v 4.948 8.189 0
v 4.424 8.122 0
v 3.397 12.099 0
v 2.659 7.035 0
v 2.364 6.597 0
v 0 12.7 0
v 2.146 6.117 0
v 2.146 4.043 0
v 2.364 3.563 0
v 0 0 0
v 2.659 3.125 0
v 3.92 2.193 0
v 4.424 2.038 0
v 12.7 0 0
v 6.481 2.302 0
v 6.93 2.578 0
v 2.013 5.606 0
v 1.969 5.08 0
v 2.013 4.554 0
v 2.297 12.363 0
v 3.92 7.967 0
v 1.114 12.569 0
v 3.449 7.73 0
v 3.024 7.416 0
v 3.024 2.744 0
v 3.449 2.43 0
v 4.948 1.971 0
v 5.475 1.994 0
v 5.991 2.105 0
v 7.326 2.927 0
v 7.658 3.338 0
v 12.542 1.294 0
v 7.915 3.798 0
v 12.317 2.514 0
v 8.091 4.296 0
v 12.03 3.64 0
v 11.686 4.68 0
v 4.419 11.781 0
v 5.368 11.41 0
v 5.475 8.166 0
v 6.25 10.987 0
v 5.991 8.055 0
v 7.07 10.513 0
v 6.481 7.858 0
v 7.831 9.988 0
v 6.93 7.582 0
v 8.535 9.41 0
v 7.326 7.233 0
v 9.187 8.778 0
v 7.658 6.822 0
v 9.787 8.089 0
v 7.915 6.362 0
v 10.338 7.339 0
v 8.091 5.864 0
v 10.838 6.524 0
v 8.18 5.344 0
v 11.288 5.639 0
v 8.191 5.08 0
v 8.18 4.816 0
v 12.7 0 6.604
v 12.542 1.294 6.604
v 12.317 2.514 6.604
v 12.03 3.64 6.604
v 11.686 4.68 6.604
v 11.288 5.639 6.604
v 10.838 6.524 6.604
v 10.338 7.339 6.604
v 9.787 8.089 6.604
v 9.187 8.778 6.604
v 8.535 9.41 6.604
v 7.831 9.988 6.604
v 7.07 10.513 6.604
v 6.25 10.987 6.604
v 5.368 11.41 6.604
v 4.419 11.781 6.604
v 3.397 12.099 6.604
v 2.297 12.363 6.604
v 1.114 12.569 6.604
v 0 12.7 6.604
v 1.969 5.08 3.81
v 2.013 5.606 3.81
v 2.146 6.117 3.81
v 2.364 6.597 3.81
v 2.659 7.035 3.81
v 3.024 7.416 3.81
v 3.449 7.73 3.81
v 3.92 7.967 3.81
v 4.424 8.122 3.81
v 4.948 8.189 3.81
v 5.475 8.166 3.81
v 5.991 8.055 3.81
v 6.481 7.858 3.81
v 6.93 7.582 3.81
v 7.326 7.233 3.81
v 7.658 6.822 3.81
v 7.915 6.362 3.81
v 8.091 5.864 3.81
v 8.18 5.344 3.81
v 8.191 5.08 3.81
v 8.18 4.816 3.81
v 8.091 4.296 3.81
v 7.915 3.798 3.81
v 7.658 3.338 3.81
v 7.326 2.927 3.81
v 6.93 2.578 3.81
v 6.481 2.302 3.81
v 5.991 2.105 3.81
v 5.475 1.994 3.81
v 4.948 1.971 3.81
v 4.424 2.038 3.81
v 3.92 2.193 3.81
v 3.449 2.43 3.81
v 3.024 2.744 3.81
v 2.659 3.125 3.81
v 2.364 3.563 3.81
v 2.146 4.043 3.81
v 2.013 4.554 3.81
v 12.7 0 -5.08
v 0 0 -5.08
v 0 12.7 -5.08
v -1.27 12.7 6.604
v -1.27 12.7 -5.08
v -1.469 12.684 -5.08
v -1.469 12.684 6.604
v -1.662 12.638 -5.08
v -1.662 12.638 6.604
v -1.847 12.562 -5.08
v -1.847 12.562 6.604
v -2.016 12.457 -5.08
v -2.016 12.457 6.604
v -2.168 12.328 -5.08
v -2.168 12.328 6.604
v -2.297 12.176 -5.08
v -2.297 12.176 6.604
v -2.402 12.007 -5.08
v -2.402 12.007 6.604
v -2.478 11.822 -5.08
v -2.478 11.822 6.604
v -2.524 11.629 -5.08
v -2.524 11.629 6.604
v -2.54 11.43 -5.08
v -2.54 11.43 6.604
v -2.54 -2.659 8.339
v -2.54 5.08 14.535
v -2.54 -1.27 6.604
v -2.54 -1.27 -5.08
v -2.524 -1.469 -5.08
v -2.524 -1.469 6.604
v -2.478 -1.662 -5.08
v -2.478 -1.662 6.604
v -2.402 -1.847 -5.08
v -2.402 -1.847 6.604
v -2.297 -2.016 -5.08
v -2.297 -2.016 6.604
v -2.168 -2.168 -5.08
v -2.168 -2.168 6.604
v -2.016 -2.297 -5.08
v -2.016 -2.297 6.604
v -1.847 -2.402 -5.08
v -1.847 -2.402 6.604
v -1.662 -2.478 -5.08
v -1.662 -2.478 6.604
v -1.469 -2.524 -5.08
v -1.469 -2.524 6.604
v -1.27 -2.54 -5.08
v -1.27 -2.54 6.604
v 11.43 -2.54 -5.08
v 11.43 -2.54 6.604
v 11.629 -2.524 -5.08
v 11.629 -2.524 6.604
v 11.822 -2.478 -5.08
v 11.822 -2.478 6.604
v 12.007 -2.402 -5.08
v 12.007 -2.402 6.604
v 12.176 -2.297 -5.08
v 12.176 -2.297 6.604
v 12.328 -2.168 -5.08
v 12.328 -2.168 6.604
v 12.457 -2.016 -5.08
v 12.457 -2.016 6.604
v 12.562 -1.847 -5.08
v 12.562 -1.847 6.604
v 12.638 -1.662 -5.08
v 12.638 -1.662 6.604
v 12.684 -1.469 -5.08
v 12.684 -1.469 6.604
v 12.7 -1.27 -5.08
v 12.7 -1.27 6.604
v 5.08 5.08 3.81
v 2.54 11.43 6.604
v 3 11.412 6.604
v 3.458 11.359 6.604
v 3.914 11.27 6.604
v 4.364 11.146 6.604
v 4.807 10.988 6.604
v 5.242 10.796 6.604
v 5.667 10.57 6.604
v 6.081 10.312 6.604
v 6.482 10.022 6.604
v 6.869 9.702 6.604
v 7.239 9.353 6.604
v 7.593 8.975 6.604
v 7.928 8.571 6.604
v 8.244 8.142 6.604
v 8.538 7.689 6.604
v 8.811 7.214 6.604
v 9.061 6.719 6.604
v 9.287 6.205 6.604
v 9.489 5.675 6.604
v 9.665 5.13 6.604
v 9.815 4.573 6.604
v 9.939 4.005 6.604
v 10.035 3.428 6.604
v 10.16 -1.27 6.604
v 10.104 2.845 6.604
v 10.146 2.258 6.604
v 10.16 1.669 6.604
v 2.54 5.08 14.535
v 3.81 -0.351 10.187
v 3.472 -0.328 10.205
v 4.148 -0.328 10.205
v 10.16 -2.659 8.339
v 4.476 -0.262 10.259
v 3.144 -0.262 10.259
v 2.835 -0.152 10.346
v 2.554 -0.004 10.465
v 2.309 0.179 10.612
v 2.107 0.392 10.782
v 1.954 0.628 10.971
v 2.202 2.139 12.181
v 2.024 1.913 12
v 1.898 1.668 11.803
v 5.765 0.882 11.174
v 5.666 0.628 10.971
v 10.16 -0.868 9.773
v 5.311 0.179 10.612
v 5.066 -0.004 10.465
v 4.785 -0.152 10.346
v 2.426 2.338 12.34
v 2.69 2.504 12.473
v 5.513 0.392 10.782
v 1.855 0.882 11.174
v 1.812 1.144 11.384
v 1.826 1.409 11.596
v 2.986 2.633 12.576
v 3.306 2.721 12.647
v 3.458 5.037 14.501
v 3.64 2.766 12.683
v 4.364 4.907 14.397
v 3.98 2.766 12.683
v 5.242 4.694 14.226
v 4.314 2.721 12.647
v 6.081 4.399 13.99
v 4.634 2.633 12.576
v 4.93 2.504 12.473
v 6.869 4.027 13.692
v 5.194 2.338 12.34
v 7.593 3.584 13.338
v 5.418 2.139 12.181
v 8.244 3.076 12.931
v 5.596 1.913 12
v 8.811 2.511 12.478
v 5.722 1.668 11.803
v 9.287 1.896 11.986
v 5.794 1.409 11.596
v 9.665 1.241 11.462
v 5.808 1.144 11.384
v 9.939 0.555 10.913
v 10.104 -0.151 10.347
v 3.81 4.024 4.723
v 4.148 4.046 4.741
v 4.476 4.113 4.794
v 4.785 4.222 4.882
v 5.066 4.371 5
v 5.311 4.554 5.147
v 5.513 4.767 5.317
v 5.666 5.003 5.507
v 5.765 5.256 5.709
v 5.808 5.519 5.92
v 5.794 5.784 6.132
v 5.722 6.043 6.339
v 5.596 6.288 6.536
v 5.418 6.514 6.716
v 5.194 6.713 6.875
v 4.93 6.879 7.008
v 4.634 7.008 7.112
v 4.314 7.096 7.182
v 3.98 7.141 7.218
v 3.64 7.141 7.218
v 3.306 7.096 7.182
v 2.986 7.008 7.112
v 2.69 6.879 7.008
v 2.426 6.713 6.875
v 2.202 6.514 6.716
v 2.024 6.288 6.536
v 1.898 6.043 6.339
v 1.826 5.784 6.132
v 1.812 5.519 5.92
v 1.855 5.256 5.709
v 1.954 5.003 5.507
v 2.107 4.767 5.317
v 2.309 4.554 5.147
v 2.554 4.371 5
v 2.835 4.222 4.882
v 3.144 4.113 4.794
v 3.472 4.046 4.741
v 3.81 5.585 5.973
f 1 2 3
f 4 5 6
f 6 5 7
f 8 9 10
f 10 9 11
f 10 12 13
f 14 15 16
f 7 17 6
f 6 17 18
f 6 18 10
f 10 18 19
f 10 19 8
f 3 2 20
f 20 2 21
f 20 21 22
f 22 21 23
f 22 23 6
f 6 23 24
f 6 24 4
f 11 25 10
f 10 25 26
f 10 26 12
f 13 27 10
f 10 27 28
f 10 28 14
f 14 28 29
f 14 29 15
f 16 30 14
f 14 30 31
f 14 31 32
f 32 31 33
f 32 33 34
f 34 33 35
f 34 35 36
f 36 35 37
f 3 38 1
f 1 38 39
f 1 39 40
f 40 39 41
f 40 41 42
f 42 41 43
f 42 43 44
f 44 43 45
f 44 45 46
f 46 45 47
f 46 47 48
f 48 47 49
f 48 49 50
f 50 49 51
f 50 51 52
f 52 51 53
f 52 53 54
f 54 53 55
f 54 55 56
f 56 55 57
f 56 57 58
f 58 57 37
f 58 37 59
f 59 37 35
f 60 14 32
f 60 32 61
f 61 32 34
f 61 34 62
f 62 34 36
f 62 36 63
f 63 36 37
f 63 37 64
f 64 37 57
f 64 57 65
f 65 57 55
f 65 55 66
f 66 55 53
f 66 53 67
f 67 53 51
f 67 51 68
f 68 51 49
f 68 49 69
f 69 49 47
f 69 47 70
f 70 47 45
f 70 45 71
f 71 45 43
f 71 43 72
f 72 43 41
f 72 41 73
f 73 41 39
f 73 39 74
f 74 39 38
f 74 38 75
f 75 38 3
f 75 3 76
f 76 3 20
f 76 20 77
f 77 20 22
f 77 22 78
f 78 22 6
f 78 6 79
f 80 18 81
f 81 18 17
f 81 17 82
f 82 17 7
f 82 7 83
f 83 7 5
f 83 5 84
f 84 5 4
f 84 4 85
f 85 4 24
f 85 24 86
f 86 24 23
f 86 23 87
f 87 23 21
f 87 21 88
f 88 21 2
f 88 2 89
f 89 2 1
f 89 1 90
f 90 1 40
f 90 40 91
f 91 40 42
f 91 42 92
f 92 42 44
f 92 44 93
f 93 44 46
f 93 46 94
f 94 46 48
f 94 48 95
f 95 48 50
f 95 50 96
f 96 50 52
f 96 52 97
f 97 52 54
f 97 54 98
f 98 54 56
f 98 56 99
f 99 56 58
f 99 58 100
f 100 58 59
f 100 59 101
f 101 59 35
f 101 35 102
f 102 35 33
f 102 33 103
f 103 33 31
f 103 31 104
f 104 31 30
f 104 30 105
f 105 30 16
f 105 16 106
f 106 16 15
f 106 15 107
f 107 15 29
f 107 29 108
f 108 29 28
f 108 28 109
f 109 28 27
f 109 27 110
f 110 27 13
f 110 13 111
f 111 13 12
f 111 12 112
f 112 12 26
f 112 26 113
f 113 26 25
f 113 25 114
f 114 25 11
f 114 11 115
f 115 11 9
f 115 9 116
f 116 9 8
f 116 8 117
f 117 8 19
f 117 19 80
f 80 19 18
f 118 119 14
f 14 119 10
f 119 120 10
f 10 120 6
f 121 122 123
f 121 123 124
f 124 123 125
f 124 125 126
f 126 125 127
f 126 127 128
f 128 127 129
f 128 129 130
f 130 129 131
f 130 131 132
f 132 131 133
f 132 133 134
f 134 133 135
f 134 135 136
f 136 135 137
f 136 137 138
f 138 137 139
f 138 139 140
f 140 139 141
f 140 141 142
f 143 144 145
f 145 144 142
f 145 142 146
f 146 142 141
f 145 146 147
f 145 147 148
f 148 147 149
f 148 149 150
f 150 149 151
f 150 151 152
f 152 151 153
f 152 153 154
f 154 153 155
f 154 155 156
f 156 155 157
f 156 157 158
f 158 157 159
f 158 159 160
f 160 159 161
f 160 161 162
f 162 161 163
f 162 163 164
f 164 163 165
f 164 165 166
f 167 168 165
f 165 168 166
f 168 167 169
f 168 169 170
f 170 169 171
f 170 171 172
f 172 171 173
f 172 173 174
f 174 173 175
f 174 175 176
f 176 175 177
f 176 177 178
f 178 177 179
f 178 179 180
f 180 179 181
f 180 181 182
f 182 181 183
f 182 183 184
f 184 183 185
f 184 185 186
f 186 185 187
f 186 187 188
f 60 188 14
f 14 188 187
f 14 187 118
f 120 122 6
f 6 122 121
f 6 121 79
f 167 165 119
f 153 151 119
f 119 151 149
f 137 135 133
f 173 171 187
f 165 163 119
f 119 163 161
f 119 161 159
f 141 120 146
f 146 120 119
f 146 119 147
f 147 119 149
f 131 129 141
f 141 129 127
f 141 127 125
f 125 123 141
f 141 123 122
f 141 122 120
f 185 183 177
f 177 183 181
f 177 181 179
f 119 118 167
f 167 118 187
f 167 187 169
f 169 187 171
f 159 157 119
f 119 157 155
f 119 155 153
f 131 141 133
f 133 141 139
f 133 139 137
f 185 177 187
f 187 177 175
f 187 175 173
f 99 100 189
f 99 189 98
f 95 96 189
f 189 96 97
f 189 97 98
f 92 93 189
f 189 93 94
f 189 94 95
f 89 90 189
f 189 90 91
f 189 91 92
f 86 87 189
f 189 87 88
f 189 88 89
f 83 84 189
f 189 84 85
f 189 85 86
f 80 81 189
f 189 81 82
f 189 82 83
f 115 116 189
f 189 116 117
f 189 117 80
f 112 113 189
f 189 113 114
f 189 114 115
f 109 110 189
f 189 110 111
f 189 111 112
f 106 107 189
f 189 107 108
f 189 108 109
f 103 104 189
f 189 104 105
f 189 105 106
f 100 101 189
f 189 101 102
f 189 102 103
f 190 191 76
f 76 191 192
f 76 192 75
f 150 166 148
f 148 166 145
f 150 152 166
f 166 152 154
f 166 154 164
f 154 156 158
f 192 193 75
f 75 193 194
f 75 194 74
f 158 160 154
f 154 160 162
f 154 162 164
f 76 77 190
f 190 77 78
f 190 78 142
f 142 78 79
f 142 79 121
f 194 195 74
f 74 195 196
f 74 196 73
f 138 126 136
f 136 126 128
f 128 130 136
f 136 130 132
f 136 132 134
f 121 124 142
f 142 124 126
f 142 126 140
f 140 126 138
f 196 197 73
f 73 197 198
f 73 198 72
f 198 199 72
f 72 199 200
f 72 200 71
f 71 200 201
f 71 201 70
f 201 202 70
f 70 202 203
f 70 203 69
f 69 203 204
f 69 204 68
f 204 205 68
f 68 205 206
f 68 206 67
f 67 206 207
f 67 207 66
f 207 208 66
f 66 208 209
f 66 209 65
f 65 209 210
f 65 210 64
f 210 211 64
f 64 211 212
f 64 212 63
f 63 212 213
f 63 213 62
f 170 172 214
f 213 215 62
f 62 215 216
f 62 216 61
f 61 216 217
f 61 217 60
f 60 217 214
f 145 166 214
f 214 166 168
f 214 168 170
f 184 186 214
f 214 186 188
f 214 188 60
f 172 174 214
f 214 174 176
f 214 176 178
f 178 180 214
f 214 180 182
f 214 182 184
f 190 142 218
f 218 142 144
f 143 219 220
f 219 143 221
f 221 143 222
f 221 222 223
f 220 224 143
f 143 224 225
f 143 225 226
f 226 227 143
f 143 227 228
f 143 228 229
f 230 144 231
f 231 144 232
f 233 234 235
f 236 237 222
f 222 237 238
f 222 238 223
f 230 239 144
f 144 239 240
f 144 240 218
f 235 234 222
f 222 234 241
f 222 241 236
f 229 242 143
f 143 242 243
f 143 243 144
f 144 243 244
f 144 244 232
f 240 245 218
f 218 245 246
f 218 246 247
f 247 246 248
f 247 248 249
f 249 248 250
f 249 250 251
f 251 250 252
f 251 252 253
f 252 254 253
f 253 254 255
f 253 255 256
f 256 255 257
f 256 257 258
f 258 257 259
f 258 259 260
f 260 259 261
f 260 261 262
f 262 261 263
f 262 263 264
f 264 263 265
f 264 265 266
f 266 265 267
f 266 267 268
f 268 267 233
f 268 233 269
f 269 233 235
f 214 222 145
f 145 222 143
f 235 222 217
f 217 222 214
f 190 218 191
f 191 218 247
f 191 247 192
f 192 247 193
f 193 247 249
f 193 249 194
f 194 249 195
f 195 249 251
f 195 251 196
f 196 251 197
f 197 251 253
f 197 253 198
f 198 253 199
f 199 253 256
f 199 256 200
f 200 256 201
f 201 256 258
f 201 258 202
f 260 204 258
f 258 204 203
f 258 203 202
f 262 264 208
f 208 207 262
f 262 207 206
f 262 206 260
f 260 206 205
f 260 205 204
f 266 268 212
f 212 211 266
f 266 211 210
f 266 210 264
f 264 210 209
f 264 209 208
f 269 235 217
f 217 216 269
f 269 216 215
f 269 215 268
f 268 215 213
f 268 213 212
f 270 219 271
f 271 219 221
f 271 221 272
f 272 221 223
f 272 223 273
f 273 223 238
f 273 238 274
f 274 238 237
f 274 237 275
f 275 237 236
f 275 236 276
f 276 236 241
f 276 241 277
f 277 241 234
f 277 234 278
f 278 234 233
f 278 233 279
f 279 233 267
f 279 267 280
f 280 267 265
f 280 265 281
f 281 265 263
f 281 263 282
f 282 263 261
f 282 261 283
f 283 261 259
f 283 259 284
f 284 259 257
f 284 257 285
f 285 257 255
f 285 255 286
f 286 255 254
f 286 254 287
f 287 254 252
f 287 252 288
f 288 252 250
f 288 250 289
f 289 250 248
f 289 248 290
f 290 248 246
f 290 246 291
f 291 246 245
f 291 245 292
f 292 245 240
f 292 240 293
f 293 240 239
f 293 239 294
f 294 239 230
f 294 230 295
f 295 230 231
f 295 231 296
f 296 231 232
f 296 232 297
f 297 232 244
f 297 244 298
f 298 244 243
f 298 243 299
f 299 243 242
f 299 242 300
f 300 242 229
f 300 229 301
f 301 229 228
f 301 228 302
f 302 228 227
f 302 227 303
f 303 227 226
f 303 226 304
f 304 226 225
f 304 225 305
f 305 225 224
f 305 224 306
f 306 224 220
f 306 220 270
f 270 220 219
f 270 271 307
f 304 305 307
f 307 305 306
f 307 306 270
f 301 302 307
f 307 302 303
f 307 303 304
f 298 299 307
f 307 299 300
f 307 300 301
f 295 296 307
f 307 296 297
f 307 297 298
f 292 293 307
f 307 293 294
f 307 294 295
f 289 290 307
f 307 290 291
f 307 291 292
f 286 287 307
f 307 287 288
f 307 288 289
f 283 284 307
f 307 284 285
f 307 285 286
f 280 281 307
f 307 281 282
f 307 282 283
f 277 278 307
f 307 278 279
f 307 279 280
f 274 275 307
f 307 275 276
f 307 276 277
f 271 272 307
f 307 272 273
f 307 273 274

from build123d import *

# Parameters (mm, degrees)
SKETCH1_R                = 3.1115
BOSS_EXTRUDE1_DEPTH      = 3.81
BOSS_EXTRUDE2_DEPTH      = 5.08
BOSS_EXTRUDE2_DEPTH_BACK = 3.81
BOSS_EXTRUDE3_START      = 0.254
BOSS_EXTRUDE3_DEPTH      = 0.254
BOSS_EXTRUDE4_START      = 2.54
BOSS_EXTRUDE4_DEPTH      = 2.54
BOSS_EXTRUDE5_DEPTH      = 12.7
FILLET1_R                = 7.62
SKETCH11_R               = 2.000000064
CUT_EXTRUDE1_DEPTH       = 6.99999997


with BuildPart() as part:
    # Sketch1 → Boss-Extrude1 (new body)
    with BuildSketch(Plane.XY):
        with BuildLine():
            Line((0, 0), (12.7, 0))
            add(Edge.make_bspline(
                [(0, 12.7), (11.620302725, 11.620302725), (12.7, 0)],
                knots=[0, 0, 0, 1, 1, 1], degree=2))
            Line((0, 12.7), (0, 0))
        make_face()
        with Locations(Location((5.08, 5.08, 0), (0, 0, 180))):
            Circle(SKETCH1_R, mode=Mode.SUBTRACT)
    extrude(amount=BOSS_EXTRUDE1_DEPTH)

    # Sketch2 → Boss-Extrude2 (add, two sides: drawn at the far end of the back side and taken through both)
    with BuildSketch(Plane(origin=(0, 0, 0), x_dir=(-1, 0, 0), z_dir=(0, 0, -1)).offset(-BOSS_EXTRUDE2_DEPTH_BACK)):
        with BuildLine():
            Line((0, 12.7), (1.27, 12.7))
            ThreePointArc((1.27, 12.7), (2.168025612, 12.328025612), (2.54, 11.43))
            Line((2.54, 11.43), (2.54, -1.27))
            ThreePointArc((2.54, -1.27), (2.168025612, -2.168025612), (1.27, -2.54))
            Line((1.27, -2.54), (-11.43, -2.54))
            ThreePointArc((-11.43, -2.54), (-12.328025612, -2.168025612), (-12.7, -1.27))
            Line((-12.7, -1.27), (-12.7, 0))
            Line((-12.7, 0), (0, 0))
            Line((0, 0), (0, 12.7))
        make_face()
    extrude(amount=BOSS_EXTRUDE2_DEPTH + BOSS_EXTRUDE2_DEPTH_BACK)

    # Sketch3 → Boss-Extrude3 (add)
    with BuildSketch(Plane.XY.offset(3.81).offset(BOSS_EXTRUDE3_START)):
        with BuildLine():
            Line((-2.54, 11.43), (-2.54, -1.27))
            ThreePointArc((-2.54, -1.27), (-2.168025612, -2.168025612), (-1.27, -2.54))
            Line((-1.27, -2.54), (11.43, -2.54))
            ThreePointArc((11.43, -2.54), (12.328025612, -2.168025612), (12.7, -1.27))
            Line((12.7, -1.27), (12.7, 0))
            add(Edge.make_bspline(
                [(0, 12.7), (11.620302725, 11.620302725), (12.7, 0)],
                knots=[0, 0, 0, 1, 1, 1], degree=2))
            Line((0, 12.7), (-1.27, 12.7))
            ThreePointArc((-1.27, 12.7), (-2.168025612, 12.328025612), (-2.54, 11.43))
        make_face()
    extrude(amount=-BOSS_EXTRUDE3_DEPTH)

    # Sketch4 → Boss-Extrude4 (add)
    with BuildSketch(Plane.XY.offset(4.064).offset(BOSS_EXTRUDE4_START)):
        with BuildLine():
            Line((-2.54, 11.43), (-2.54, -1.27))
            ThreePointArc((-2.54, -1.27), (-2.168025612, -2.168025612), (-1.27, -2.54))
            Line((-1.27, -2.54), (11.43, -2.54))
            ThreePointArc((11.43, -2.54), (12.328025612, -2.168025612), (12.7, -1.27))
            Line((12.7, -1.27), (12.7, 0))
            add(Edge.make_bspline(
                [(0, 12.7), (11.620302725, 11.620302725), (12.7, 0)],
                knots=[0, 0, 0, 1, 1, 1], degree=2))
            Line((0, 12.7), (-1.27, 12.7))
            ThreePointArc((-1.27, 12.7), (-2.168025612, 12.328025612), (-2.54, 11.43))
        make_face()
    extrude(amount=-BOSS_EXTRUDE4_DEPTH)

    # Sketch10 → Boss-Extrude5 (add)
    with BuildSketch(Plane.ZY.offset(2.54)):
        Polygon((6.604, 11.43), (14.535389884, 5.080302802), (8.339287015, -2.659232815), (6.604, -1.27), align=None)
    extrude(amount=-BOSS_EXTRUDE5_DEPTH)

    # Fillet1
    # the kernel refuses this fillet: 7.62 mm, written as the material it takes off along each edge
    with BuildSketch(Plane(origin=(10.16, 23.335682246, -8.267356033), x_dir=(0, -0.7806486106469015, -0.6249701966454579), z_dir=(0, -0.6249701966454579, 0.7806486106469016))) as fillet1_piece_1_section:
        with BuildLine():
            CenterArc((FILLET1_R, -FILLET1_R), FILLET1_R, 90, 90)
            Line((0, -FILLET1_R), (0, 0))
            Line((0, 0), (FILLET1_R, 0))
        make_face()
    fillet1_piece_1 = extrude(amount=48.26, mode=Mode.PRIVATE)
    fillet1_piece_1 = split(fillet1_piece_1, bisect_by=Plane(origin=(9.16105253, 9.619488642, 6.604), z_dir=(0, 0, 1)), keep=Keep.TOP, mode=Mode.PRIVATE)
    add(fillet1_piece_1, mode=Mode.SUBTRACT)

    # Sketch11 → Cut-Extrude1 (cut)
    with BuildSketch(Plane(origin=(0, -5.107252745, 6.379455822), x_dir=(1, 0, 0), z_dir=(0, -0.6249701966454576, 0.7806486106469017))):
        with Locations(Location((3.81, 8.092998121, 0), (0, 0, 270))):
            Circle(SKETCH11_R)
    extrude(amount=-CUT_EXTRUDE1_DEPTH, mode=Mode.SUBTRACT)


solid = part.part
